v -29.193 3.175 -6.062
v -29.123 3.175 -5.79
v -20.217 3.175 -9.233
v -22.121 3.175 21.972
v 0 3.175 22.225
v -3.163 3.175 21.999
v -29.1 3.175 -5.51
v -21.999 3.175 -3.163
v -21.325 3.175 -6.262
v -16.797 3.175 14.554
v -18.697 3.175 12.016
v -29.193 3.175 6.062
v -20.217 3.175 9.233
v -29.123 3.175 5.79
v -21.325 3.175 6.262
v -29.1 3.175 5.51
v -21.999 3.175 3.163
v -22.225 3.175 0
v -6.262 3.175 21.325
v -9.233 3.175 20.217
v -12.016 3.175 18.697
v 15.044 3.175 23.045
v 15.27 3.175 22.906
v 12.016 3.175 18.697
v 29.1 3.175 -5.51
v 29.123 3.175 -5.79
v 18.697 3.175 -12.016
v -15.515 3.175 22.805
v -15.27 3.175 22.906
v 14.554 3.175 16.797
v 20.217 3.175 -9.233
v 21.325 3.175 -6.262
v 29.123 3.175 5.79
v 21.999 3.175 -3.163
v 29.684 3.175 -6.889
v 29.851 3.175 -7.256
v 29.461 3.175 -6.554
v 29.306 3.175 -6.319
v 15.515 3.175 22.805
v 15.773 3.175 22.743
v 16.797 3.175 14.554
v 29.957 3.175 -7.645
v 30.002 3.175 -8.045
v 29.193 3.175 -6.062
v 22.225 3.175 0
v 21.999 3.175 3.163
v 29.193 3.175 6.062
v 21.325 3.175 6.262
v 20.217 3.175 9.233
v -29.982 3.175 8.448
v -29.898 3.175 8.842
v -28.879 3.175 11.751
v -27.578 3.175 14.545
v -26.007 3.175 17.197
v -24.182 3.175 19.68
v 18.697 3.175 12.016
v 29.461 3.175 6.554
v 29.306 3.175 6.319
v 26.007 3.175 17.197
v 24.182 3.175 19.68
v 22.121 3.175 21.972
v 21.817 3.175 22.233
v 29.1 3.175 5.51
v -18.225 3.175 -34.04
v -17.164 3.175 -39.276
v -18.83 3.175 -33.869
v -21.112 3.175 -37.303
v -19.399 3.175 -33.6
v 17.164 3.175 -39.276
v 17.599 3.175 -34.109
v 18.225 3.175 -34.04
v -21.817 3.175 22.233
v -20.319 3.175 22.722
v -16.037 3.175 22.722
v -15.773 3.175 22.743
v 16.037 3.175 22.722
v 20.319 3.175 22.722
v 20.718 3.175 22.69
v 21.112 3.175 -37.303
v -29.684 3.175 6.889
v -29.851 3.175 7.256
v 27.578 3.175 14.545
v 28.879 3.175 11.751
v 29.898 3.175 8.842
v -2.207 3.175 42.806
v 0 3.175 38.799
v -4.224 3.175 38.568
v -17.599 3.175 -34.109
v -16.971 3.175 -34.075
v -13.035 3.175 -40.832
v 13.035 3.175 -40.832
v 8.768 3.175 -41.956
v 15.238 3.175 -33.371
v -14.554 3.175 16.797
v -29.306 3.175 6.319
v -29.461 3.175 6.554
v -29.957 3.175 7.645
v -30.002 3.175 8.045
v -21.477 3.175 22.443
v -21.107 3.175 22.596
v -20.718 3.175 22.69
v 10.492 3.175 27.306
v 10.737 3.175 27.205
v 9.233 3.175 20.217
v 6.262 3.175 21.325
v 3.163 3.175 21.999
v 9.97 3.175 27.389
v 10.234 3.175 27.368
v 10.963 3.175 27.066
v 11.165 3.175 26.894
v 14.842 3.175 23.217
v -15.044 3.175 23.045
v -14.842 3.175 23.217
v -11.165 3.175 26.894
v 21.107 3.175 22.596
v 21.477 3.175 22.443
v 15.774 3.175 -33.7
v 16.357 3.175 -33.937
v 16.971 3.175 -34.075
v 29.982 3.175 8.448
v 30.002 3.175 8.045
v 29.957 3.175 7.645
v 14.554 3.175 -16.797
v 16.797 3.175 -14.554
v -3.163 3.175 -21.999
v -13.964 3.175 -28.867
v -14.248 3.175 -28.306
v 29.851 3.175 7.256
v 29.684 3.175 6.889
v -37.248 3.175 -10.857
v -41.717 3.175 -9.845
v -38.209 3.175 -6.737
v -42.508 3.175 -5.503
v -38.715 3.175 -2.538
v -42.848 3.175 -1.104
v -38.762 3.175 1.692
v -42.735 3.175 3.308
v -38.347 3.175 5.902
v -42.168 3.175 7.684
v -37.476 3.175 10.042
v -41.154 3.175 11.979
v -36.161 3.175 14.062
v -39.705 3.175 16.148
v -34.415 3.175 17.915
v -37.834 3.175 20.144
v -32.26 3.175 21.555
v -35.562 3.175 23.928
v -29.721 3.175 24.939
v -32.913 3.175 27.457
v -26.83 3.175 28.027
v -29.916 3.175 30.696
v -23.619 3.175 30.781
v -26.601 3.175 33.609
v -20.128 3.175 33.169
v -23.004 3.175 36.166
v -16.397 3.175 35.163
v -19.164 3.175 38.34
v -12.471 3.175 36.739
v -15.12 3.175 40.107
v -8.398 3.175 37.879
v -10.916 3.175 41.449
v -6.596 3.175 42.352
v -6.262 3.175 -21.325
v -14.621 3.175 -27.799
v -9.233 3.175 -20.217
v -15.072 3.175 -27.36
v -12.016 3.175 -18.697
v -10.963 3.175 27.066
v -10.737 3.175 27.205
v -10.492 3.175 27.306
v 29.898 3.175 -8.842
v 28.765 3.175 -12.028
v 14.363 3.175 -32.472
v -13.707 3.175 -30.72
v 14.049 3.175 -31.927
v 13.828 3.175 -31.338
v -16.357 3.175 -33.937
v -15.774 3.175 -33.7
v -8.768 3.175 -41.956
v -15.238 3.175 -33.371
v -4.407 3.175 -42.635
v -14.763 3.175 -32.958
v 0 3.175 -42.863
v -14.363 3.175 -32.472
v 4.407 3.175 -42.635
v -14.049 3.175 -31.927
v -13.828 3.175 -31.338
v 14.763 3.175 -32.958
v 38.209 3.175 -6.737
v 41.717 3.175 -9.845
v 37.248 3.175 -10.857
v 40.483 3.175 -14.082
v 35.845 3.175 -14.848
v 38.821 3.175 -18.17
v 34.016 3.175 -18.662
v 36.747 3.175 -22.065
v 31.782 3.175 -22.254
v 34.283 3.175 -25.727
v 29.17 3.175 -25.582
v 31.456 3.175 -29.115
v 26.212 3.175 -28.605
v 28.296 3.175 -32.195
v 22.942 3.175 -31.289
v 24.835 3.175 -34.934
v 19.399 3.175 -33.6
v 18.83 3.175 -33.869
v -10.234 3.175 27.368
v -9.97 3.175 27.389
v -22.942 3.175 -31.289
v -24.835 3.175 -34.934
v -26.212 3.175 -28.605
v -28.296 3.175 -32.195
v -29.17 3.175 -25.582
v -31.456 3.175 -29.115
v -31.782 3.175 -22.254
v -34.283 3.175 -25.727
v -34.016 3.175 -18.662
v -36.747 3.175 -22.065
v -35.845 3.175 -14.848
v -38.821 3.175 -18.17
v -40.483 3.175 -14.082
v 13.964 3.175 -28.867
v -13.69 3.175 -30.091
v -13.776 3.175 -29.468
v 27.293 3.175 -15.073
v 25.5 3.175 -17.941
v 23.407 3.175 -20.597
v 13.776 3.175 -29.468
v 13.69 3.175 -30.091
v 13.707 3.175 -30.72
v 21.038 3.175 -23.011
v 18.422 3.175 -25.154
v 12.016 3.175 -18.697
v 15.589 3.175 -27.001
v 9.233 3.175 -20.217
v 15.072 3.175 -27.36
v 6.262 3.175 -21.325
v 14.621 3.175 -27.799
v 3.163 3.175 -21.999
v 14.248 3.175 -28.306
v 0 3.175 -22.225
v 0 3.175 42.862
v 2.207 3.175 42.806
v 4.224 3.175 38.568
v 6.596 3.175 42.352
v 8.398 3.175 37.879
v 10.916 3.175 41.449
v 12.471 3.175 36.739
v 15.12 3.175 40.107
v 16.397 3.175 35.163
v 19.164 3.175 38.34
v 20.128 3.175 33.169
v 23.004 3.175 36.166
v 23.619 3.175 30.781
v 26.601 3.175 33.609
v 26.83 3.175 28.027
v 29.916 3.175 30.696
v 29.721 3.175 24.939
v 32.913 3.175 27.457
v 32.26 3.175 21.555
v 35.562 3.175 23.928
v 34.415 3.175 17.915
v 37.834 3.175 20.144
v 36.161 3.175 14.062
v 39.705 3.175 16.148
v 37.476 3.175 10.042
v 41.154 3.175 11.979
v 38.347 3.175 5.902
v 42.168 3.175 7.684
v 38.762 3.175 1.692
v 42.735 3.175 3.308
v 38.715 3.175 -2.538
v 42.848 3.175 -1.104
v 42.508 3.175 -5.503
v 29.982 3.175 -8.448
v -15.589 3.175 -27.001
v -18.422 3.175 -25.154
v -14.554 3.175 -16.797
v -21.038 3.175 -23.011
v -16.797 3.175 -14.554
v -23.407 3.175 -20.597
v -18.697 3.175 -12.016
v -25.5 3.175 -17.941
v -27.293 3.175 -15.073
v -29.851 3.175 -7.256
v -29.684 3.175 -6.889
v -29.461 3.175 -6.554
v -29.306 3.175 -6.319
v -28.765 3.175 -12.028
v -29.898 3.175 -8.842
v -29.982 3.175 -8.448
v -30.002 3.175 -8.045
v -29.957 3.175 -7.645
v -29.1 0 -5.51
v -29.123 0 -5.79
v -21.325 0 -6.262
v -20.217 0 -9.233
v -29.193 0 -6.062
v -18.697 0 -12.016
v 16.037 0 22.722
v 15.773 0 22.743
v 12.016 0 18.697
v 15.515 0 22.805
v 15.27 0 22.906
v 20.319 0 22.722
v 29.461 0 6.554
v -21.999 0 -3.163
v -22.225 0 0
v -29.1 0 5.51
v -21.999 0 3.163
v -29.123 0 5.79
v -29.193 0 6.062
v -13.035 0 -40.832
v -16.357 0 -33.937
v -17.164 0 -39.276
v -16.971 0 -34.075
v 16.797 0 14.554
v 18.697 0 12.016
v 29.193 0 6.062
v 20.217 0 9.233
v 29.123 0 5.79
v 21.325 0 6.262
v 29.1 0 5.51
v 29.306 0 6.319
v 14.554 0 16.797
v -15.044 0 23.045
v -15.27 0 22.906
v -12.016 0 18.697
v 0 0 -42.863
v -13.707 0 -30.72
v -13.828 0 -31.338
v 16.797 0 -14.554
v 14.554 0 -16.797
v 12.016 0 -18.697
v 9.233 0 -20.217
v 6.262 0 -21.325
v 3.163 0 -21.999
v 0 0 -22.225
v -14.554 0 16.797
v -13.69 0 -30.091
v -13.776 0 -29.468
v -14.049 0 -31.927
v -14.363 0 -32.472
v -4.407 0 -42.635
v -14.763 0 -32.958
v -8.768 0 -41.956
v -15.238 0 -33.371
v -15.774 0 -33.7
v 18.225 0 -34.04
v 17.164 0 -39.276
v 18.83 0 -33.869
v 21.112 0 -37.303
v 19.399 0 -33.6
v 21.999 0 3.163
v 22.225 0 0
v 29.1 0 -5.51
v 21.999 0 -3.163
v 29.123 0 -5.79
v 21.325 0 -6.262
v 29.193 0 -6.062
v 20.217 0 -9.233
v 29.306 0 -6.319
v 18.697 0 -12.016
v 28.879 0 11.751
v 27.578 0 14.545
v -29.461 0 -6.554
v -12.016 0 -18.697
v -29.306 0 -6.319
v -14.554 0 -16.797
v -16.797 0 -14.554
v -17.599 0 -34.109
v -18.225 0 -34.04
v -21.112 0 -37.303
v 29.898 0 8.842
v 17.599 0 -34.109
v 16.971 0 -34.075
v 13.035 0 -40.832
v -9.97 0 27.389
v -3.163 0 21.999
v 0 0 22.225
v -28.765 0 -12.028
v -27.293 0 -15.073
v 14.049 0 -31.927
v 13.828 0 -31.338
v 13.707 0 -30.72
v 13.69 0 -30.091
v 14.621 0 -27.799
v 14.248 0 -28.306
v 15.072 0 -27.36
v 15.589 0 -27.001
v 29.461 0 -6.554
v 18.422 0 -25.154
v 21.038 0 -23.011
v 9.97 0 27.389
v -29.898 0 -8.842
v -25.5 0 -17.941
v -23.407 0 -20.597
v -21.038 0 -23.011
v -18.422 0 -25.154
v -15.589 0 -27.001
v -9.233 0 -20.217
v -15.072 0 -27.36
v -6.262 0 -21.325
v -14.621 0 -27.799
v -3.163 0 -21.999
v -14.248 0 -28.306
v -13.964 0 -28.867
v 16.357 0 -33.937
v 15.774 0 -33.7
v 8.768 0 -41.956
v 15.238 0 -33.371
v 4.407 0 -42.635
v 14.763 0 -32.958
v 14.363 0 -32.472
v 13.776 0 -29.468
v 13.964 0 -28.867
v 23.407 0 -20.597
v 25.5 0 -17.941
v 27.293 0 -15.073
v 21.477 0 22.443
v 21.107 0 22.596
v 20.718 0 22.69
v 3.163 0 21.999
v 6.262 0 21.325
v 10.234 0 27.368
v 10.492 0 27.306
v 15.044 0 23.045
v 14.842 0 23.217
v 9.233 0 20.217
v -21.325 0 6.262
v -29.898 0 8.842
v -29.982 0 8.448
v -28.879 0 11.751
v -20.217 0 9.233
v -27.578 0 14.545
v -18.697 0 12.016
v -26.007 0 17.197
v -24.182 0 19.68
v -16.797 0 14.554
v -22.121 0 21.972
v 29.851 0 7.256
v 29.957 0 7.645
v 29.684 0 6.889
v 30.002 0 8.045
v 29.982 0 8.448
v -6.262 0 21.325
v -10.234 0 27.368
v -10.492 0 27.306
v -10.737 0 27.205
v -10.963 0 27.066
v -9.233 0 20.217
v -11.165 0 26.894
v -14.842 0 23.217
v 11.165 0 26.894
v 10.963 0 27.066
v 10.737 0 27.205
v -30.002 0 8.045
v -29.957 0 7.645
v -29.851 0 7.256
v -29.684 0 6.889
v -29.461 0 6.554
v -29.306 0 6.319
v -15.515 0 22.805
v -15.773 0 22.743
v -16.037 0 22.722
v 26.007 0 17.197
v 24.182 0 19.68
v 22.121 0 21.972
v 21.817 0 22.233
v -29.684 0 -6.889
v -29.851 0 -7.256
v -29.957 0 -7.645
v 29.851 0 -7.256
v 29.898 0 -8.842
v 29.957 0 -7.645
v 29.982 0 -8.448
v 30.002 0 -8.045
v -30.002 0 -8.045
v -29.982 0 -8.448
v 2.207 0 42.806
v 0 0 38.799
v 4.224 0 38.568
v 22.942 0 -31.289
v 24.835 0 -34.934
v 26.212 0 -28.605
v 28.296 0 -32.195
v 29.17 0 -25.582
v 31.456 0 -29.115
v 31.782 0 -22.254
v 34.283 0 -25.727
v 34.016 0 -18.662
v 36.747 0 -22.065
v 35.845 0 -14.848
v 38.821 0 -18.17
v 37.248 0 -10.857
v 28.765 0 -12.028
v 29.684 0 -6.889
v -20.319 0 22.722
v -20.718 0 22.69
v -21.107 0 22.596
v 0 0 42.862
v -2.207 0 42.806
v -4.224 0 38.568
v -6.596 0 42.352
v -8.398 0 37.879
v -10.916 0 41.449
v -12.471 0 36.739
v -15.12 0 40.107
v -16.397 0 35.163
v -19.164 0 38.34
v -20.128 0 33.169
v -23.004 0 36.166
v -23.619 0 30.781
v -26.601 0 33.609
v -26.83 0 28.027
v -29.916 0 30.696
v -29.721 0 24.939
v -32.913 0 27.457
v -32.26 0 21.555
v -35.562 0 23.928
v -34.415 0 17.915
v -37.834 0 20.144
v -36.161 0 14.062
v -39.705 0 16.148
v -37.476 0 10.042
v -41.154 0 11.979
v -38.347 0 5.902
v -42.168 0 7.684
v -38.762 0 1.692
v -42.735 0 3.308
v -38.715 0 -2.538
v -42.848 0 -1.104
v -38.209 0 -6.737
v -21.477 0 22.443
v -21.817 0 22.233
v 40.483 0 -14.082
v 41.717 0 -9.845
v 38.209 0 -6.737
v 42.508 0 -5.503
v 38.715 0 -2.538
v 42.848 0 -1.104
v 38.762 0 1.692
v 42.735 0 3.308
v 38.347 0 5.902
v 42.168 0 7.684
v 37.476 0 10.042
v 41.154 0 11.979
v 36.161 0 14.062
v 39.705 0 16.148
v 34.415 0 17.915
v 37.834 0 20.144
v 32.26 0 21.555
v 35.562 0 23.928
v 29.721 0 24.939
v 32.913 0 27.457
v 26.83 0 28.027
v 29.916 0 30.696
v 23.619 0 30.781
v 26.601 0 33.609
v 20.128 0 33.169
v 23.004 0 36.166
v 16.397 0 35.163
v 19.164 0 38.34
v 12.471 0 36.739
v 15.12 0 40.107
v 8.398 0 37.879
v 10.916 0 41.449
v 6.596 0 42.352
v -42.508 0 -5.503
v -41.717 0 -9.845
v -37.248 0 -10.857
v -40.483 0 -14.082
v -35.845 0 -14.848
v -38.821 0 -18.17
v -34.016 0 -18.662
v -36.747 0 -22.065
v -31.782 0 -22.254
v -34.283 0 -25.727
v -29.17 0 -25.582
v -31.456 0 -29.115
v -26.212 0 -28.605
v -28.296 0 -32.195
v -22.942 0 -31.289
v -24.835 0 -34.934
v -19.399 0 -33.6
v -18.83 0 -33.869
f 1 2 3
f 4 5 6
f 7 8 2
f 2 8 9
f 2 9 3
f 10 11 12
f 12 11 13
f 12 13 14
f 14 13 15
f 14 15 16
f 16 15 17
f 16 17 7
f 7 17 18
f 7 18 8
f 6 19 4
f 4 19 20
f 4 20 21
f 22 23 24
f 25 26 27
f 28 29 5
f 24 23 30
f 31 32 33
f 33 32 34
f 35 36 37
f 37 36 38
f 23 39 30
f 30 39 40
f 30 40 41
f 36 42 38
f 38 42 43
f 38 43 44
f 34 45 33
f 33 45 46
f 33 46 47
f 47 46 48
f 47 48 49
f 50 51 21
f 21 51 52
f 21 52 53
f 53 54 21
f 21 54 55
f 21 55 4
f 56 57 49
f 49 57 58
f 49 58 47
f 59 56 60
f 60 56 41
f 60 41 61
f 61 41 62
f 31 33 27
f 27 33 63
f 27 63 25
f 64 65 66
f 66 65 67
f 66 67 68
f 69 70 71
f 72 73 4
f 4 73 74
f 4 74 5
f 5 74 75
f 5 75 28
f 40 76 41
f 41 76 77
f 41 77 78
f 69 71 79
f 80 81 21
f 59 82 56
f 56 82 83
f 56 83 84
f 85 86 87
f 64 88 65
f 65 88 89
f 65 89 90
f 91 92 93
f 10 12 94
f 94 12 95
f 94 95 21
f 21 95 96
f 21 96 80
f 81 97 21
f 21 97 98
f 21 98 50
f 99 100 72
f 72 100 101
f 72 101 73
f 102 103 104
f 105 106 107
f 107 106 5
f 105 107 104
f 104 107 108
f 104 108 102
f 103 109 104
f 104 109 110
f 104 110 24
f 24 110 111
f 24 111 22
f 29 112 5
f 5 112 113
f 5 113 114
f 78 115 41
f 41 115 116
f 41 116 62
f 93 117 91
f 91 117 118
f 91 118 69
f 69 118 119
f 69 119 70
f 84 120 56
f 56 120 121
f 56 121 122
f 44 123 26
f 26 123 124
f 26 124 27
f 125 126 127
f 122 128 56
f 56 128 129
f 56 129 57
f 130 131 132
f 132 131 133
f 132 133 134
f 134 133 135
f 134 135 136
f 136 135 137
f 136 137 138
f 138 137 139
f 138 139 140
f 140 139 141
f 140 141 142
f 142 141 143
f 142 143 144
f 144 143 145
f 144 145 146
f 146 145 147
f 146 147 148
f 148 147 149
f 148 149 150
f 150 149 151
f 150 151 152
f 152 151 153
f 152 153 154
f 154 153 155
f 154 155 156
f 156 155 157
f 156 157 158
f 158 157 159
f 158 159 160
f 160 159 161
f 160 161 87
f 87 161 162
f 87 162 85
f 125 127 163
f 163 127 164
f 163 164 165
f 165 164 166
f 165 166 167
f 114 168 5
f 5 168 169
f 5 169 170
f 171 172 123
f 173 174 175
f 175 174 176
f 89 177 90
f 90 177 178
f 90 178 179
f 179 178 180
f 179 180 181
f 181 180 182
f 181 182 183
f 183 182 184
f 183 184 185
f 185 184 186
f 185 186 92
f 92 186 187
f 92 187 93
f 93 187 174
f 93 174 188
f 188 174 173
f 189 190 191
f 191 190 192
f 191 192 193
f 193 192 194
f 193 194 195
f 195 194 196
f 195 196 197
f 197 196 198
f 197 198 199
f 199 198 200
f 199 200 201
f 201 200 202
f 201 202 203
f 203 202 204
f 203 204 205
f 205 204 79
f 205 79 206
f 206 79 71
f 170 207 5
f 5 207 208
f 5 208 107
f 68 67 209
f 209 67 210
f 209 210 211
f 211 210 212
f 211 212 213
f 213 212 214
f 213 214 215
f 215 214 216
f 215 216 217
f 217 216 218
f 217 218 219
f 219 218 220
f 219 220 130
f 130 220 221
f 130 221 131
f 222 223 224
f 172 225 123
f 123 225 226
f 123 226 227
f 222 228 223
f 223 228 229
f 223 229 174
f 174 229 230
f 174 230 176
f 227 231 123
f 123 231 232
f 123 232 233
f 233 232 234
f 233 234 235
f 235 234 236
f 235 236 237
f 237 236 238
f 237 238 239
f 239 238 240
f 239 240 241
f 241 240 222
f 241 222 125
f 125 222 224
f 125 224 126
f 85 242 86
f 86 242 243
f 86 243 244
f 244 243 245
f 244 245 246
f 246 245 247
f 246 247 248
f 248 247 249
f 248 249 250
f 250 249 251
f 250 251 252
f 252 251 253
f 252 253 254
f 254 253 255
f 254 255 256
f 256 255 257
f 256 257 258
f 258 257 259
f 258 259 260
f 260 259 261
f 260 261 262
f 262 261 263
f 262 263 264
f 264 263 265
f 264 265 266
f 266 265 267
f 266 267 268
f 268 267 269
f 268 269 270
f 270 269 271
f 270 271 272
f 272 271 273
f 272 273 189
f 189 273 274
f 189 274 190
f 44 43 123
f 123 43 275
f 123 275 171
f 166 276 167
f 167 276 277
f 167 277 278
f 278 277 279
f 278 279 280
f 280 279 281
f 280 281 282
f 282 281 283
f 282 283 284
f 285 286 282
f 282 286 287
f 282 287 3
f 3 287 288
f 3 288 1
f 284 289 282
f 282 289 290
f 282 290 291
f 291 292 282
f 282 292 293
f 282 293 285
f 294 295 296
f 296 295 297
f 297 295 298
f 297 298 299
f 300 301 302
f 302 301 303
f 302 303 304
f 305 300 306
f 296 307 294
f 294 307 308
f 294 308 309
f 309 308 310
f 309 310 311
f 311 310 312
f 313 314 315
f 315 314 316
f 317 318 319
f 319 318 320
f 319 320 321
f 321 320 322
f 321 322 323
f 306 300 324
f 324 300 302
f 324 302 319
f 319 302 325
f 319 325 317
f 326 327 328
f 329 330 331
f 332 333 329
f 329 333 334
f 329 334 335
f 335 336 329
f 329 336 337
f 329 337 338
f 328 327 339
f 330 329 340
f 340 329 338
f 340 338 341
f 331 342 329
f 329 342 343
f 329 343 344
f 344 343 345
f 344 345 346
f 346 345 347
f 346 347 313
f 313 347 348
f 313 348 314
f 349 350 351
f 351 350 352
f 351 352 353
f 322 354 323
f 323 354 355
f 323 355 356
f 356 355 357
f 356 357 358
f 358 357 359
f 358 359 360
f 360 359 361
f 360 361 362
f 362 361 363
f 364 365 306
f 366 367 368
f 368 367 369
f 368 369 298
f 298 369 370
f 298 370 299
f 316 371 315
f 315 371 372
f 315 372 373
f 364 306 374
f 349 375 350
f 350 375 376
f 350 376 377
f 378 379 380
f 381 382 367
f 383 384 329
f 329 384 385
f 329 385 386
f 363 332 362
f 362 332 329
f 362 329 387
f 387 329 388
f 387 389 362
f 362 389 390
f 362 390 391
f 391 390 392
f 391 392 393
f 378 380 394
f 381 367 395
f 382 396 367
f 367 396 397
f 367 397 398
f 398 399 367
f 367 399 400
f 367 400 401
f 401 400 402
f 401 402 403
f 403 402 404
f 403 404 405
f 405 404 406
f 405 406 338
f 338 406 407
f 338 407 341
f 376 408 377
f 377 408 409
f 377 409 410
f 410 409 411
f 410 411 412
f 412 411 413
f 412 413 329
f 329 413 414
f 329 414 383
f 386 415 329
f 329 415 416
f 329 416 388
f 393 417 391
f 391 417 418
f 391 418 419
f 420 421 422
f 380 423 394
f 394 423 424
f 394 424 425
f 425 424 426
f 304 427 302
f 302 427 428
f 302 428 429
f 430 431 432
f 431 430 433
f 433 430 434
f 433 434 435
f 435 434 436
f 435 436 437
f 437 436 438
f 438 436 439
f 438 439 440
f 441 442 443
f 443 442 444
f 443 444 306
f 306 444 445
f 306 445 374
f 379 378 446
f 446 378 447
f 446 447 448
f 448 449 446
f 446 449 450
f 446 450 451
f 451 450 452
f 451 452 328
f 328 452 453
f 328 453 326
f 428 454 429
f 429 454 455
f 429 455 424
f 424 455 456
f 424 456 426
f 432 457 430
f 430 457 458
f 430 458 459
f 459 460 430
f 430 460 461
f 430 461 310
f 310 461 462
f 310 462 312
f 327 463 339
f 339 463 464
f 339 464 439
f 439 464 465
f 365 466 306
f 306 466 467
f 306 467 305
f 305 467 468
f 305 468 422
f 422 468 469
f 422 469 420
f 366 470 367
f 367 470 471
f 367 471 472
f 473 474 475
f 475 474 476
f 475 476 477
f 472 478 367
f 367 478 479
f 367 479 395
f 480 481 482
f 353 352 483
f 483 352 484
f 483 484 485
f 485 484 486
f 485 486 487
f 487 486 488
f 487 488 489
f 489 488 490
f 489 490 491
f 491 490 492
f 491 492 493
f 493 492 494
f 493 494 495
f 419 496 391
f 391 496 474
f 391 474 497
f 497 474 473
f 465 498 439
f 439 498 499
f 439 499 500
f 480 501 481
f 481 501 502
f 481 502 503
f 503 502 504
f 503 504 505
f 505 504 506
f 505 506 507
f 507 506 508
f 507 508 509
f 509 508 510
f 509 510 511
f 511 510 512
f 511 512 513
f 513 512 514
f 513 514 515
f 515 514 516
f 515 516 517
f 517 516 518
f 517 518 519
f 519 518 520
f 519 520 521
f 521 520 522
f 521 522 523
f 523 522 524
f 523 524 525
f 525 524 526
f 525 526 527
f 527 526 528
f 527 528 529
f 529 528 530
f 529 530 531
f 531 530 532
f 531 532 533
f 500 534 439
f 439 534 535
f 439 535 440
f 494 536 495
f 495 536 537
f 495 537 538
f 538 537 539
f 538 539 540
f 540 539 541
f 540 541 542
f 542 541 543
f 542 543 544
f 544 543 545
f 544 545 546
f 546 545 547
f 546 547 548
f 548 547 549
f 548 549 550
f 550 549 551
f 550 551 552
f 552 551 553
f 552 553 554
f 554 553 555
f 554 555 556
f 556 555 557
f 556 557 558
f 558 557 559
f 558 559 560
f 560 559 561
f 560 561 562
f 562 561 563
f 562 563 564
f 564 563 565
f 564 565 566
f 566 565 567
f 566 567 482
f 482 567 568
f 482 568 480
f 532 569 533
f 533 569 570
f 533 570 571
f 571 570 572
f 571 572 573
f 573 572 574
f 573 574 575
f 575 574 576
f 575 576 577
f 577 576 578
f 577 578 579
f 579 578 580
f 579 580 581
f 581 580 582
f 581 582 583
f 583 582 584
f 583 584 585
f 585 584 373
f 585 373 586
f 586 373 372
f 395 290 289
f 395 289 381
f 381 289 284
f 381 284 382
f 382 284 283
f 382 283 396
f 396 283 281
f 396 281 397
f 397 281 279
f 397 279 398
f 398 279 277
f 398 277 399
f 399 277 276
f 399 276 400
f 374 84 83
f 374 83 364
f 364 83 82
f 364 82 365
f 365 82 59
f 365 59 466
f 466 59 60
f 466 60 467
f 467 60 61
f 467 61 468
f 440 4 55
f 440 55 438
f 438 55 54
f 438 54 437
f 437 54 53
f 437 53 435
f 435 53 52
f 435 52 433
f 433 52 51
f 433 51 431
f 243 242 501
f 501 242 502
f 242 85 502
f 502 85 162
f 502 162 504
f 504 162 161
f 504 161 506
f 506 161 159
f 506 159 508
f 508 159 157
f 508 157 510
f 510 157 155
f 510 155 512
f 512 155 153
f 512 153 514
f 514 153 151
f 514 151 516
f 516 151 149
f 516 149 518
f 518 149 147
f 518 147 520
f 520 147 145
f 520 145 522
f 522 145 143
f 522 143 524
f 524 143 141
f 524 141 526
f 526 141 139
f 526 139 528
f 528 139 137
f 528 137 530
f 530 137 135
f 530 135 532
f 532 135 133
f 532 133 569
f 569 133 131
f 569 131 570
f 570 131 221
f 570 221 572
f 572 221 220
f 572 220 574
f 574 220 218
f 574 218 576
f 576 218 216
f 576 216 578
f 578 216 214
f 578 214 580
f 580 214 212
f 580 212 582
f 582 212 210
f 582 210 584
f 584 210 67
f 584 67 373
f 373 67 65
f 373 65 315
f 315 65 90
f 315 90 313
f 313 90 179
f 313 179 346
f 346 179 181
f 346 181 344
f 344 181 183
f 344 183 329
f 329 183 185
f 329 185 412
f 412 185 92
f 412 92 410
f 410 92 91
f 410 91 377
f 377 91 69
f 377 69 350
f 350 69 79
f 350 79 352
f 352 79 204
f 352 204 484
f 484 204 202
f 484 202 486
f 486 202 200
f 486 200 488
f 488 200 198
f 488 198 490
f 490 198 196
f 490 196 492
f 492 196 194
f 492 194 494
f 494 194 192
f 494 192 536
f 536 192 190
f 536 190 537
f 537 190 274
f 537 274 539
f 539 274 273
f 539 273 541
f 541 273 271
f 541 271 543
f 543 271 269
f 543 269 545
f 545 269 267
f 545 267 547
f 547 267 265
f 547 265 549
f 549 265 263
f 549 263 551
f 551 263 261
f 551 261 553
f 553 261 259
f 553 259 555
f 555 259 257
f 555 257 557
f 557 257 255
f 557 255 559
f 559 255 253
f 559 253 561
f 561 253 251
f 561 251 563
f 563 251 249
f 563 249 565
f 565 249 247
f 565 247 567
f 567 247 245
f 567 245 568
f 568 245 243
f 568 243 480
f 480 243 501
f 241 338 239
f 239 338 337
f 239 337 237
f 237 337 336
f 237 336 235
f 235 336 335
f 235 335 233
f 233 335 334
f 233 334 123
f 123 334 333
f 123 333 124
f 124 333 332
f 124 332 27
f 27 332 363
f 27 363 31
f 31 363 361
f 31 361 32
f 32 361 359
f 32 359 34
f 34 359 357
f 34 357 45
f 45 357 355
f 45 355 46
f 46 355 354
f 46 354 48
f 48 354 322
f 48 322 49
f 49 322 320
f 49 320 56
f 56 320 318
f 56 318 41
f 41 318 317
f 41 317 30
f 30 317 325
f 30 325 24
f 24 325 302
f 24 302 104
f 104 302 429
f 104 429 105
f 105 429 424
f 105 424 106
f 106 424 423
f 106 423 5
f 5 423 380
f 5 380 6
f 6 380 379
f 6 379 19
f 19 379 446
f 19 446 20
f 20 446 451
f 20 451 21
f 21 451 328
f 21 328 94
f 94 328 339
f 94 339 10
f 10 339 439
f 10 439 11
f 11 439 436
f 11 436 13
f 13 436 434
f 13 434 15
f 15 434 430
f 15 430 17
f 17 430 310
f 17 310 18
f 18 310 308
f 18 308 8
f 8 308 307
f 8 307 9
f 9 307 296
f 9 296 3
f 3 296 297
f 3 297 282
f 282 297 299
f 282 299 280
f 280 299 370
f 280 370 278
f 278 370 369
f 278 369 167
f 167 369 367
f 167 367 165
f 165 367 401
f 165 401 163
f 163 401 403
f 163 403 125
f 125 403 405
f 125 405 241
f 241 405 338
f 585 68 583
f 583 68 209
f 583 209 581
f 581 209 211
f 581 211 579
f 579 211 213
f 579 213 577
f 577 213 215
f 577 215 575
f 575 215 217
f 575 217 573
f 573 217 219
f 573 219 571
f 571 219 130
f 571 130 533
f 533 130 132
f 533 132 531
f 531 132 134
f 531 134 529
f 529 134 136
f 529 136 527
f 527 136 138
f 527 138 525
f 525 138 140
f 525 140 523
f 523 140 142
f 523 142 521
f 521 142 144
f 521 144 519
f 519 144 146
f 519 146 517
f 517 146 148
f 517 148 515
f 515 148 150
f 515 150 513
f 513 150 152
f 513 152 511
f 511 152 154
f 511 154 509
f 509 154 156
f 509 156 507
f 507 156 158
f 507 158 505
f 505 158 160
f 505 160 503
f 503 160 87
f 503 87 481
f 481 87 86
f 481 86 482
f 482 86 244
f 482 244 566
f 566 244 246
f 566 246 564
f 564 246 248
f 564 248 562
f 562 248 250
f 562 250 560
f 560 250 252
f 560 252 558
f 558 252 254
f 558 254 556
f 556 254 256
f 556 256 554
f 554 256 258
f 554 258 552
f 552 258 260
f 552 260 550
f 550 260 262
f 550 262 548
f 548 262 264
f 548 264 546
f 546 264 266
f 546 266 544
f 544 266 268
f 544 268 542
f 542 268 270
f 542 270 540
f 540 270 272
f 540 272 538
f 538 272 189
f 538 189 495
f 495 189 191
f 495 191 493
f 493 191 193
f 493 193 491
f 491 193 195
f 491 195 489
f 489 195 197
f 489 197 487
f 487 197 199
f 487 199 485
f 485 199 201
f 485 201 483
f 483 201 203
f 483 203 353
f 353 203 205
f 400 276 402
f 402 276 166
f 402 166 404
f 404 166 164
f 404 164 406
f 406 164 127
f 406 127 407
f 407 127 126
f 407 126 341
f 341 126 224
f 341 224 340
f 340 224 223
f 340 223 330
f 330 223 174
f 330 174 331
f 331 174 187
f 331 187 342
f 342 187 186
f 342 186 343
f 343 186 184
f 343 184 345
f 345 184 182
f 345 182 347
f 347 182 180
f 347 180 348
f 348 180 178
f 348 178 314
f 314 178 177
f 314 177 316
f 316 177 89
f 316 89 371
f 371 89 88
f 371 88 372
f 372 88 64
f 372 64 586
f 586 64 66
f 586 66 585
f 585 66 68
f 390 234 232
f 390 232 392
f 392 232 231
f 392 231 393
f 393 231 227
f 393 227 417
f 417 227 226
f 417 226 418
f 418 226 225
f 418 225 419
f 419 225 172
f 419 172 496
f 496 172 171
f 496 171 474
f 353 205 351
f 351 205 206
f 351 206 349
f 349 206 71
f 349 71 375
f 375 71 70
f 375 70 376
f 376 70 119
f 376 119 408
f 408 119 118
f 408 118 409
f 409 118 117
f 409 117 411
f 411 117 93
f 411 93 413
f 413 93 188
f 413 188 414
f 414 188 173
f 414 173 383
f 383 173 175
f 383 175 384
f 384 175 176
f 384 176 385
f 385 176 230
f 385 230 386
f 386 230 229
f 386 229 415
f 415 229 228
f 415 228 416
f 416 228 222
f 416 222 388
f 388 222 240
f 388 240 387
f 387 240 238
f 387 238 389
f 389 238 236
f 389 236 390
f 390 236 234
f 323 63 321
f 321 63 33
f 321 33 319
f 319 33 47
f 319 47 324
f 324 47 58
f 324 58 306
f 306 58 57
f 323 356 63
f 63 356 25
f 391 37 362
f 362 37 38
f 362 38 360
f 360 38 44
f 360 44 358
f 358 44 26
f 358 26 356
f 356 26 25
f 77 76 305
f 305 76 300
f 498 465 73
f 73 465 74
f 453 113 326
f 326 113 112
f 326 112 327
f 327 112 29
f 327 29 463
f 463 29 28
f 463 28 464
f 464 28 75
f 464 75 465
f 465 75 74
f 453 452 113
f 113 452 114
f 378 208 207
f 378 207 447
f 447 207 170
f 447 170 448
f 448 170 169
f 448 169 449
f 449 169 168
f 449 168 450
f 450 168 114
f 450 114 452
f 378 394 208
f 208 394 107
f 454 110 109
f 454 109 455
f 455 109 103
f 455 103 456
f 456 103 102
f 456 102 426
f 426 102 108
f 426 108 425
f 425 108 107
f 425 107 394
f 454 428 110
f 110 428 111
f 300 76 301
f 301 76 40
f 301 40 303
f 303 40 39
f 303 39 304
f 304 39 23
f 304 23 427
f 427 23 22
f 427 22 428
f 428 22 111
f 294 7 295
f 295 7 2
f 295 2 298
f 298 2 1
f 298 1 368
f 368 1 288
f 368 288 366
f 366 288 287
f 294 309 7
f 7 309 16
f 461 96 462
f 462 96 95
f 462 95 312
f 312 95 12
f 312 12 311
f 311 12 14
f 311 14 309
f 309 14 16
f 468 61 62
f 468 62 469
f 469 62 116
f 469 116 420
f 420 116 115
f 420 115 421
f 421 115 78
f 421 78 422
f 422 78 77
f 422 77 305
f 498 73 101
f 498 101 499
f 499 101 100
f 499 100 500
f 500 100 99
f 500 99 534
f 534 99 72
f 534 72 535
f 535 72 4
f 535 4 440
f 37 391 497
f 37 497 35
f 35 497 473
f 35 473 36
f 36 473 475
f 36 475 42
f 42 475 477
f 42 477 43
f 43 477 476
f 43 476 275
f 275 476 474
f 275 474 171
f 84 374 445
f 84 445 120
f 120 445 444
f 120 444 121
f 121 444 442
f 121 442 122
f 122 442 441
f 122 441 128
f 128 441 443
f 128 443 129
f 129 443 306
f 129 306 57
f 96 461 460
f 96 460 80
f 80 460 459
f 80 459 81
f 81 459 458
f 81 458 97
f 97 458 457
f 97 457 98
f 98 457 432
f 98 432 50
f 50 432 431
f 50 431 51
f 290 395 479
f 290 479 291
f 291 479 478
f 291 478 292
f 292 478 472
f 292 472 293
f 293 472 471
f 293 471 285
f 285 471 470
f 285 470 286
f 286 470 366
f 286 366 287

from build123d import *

# Parameters (mm, degrees)
SKETCH1_R           = 42.8625
SKETCH1_R_2         = 22.225
BOSS_EXTRUDE1_DEPTH = 3.175
CUT_EXTRUDE1_DEPTH  = 61.699822384
CUT_EXTRUDE3_DEPTH  = 61.699822384
FILLET1_R           = 2.54


with BuildPart() as part:
    # Sketch1 → Boss-Extrude1 (new body)
    with BuildSketch(Plane(origin=(0, 0, 0), x_dir=(1, 0, 0), z_dir=(0, 1, 0))):
        with Locations(Location((0, 0, 0), (0, 0, 270))):
            Circle(SKETCH1_R)
        with Locations(Location((0, 0, 0), (0, 0, 270))):
            Circle(SKETCH1_R_2, mode=Mode.SUBTRACT)
    extrude(amount=BOSS_EXTRUDE1_DEPTH)

    # Sketch2 → Cut-Extrude1 (cut, through all)
    with BuildSketch(Plane(origin=(0, 3.175, 0), x_dir=(1, 0, 0), z_dir=(0, 1, 0))):
        with BuildLine():
            ThreePointArc((19.39925, 33.600486629), (14.194693212, 32.20592984), (15.58925, 27.001373052))
            ThreePointArc((15.58925, 27.001373052), (0, -31.1785), (-15.58925, 27.001373052))
            ThreePointArc((-15.58925, 27.001373052), (-14.194693212, 32.20592984), (-19.39925, 33.600486629))
            ThreePointArc((-19.39925, 33.600486629), (0, -38.7985), (19.39925, 33.600486629))
        make_face()
    extrude(amount=-CUT_EXTRUDE1_DEPTH, mode=Mode.SUBTRACT)

    # Sketch6 → Cut-Extrude3 (cut, through all)
    with BuildSketch(Plane(origin=(0, 3.175, 0), x_dir=(1, 0, 0), z_dir=(0, 1, 0))):
        with BuildLine():
            Line((-21.34992109, -22.721789799), (-16.03711988, -22.721789799))
            ThreePointArc((-16.03711988, -22.721789799), (-15.390384879, -22.850433389), (-14.84210942, -23.216779339))
            Line((-14.84210942, -23.216779339), (-11.16498954, -26.893899219))
            ThreePointArc((-11.16498954, -26.893899219), (-10.61671408, -27.260245169), (-9.96997908, -27.388888759))
            Line((-9.96997908, -27.388888759), (9.96997908, -27.388888759))
            ThreePointArc((9.96997908, -27.388888759), (10.61671408, -27.260245169), (11.16498954, -26.893899219))
            Line((11.16498954, -26.893899219), (14.84210942, -23.216779339))
            ThreePointArc((14.84210942, -23.216779339), (15.390384879, -22.850433389), (16.03711988, -22.721789799))
            Line((16.03711988, -22.721789799), (21.34992109, -22.721789799))
            ThreePointArc((21.34992109, -22.721789799), (0, -31.1785), (-21.34992109, -22.721789799))
        make_face()
        with BuildLine():
            Line((29.1, -5.51000025), (29.1, 5.51000025))
            ThreePointArc((29.1, 5.51000025), (29.448279688, 6.53756368), (30.349569945, 7.14160111))
            ThreePointArc((30.349569945, 7.14160111), (31.1785, 0), (30.349569945, -7.14160111))
            ThreePointArc((30.349569945, -7.14160111), (29.448279688, -6.53756368), (29.1, -5.51000025))
        make_face()
        with BuildLine():
            Line((-29.1, 5.51000025), (-29.1, -5.51000025))
            ThreePointArc((-29.1, -5.51000025), (-29.448279688, -6.53756368), (-30.349569945, -7.14160111))
            ThreePointArc((-30.349569945, -7.14160111), (-31.1785, 0), (-30.349569945, 7.14160111))
            ThreePointArc((-30.349569945, 7.14160111), (-29.448279688, 6.53756368), (-29.1, 5.51000025))
        make_face()
    extrude(amount=-CUT_EXTRUDE3_DEPTH, mode=Mode.SUBTRACT)

    # Fillet1
    fillet1_edges = [part.edges().sort_by_distance(p)[0] for p in [
        (-30.349569945, 1.5875, 7.14160111),
        (-30.349569945, 1.5875, -7.14160111),
        (21.34992109, 1.5875, 22.721789799),
        (-21.34992109, 1.5875, 22.721789799),
        (30.349569945, 1.5875, -7.14160111),
        (30.349569945, 1.5875, 7.14160111),
    ]]
    fillet(fillet1_edges, radius=FILLET1_R)


solid = part.part
